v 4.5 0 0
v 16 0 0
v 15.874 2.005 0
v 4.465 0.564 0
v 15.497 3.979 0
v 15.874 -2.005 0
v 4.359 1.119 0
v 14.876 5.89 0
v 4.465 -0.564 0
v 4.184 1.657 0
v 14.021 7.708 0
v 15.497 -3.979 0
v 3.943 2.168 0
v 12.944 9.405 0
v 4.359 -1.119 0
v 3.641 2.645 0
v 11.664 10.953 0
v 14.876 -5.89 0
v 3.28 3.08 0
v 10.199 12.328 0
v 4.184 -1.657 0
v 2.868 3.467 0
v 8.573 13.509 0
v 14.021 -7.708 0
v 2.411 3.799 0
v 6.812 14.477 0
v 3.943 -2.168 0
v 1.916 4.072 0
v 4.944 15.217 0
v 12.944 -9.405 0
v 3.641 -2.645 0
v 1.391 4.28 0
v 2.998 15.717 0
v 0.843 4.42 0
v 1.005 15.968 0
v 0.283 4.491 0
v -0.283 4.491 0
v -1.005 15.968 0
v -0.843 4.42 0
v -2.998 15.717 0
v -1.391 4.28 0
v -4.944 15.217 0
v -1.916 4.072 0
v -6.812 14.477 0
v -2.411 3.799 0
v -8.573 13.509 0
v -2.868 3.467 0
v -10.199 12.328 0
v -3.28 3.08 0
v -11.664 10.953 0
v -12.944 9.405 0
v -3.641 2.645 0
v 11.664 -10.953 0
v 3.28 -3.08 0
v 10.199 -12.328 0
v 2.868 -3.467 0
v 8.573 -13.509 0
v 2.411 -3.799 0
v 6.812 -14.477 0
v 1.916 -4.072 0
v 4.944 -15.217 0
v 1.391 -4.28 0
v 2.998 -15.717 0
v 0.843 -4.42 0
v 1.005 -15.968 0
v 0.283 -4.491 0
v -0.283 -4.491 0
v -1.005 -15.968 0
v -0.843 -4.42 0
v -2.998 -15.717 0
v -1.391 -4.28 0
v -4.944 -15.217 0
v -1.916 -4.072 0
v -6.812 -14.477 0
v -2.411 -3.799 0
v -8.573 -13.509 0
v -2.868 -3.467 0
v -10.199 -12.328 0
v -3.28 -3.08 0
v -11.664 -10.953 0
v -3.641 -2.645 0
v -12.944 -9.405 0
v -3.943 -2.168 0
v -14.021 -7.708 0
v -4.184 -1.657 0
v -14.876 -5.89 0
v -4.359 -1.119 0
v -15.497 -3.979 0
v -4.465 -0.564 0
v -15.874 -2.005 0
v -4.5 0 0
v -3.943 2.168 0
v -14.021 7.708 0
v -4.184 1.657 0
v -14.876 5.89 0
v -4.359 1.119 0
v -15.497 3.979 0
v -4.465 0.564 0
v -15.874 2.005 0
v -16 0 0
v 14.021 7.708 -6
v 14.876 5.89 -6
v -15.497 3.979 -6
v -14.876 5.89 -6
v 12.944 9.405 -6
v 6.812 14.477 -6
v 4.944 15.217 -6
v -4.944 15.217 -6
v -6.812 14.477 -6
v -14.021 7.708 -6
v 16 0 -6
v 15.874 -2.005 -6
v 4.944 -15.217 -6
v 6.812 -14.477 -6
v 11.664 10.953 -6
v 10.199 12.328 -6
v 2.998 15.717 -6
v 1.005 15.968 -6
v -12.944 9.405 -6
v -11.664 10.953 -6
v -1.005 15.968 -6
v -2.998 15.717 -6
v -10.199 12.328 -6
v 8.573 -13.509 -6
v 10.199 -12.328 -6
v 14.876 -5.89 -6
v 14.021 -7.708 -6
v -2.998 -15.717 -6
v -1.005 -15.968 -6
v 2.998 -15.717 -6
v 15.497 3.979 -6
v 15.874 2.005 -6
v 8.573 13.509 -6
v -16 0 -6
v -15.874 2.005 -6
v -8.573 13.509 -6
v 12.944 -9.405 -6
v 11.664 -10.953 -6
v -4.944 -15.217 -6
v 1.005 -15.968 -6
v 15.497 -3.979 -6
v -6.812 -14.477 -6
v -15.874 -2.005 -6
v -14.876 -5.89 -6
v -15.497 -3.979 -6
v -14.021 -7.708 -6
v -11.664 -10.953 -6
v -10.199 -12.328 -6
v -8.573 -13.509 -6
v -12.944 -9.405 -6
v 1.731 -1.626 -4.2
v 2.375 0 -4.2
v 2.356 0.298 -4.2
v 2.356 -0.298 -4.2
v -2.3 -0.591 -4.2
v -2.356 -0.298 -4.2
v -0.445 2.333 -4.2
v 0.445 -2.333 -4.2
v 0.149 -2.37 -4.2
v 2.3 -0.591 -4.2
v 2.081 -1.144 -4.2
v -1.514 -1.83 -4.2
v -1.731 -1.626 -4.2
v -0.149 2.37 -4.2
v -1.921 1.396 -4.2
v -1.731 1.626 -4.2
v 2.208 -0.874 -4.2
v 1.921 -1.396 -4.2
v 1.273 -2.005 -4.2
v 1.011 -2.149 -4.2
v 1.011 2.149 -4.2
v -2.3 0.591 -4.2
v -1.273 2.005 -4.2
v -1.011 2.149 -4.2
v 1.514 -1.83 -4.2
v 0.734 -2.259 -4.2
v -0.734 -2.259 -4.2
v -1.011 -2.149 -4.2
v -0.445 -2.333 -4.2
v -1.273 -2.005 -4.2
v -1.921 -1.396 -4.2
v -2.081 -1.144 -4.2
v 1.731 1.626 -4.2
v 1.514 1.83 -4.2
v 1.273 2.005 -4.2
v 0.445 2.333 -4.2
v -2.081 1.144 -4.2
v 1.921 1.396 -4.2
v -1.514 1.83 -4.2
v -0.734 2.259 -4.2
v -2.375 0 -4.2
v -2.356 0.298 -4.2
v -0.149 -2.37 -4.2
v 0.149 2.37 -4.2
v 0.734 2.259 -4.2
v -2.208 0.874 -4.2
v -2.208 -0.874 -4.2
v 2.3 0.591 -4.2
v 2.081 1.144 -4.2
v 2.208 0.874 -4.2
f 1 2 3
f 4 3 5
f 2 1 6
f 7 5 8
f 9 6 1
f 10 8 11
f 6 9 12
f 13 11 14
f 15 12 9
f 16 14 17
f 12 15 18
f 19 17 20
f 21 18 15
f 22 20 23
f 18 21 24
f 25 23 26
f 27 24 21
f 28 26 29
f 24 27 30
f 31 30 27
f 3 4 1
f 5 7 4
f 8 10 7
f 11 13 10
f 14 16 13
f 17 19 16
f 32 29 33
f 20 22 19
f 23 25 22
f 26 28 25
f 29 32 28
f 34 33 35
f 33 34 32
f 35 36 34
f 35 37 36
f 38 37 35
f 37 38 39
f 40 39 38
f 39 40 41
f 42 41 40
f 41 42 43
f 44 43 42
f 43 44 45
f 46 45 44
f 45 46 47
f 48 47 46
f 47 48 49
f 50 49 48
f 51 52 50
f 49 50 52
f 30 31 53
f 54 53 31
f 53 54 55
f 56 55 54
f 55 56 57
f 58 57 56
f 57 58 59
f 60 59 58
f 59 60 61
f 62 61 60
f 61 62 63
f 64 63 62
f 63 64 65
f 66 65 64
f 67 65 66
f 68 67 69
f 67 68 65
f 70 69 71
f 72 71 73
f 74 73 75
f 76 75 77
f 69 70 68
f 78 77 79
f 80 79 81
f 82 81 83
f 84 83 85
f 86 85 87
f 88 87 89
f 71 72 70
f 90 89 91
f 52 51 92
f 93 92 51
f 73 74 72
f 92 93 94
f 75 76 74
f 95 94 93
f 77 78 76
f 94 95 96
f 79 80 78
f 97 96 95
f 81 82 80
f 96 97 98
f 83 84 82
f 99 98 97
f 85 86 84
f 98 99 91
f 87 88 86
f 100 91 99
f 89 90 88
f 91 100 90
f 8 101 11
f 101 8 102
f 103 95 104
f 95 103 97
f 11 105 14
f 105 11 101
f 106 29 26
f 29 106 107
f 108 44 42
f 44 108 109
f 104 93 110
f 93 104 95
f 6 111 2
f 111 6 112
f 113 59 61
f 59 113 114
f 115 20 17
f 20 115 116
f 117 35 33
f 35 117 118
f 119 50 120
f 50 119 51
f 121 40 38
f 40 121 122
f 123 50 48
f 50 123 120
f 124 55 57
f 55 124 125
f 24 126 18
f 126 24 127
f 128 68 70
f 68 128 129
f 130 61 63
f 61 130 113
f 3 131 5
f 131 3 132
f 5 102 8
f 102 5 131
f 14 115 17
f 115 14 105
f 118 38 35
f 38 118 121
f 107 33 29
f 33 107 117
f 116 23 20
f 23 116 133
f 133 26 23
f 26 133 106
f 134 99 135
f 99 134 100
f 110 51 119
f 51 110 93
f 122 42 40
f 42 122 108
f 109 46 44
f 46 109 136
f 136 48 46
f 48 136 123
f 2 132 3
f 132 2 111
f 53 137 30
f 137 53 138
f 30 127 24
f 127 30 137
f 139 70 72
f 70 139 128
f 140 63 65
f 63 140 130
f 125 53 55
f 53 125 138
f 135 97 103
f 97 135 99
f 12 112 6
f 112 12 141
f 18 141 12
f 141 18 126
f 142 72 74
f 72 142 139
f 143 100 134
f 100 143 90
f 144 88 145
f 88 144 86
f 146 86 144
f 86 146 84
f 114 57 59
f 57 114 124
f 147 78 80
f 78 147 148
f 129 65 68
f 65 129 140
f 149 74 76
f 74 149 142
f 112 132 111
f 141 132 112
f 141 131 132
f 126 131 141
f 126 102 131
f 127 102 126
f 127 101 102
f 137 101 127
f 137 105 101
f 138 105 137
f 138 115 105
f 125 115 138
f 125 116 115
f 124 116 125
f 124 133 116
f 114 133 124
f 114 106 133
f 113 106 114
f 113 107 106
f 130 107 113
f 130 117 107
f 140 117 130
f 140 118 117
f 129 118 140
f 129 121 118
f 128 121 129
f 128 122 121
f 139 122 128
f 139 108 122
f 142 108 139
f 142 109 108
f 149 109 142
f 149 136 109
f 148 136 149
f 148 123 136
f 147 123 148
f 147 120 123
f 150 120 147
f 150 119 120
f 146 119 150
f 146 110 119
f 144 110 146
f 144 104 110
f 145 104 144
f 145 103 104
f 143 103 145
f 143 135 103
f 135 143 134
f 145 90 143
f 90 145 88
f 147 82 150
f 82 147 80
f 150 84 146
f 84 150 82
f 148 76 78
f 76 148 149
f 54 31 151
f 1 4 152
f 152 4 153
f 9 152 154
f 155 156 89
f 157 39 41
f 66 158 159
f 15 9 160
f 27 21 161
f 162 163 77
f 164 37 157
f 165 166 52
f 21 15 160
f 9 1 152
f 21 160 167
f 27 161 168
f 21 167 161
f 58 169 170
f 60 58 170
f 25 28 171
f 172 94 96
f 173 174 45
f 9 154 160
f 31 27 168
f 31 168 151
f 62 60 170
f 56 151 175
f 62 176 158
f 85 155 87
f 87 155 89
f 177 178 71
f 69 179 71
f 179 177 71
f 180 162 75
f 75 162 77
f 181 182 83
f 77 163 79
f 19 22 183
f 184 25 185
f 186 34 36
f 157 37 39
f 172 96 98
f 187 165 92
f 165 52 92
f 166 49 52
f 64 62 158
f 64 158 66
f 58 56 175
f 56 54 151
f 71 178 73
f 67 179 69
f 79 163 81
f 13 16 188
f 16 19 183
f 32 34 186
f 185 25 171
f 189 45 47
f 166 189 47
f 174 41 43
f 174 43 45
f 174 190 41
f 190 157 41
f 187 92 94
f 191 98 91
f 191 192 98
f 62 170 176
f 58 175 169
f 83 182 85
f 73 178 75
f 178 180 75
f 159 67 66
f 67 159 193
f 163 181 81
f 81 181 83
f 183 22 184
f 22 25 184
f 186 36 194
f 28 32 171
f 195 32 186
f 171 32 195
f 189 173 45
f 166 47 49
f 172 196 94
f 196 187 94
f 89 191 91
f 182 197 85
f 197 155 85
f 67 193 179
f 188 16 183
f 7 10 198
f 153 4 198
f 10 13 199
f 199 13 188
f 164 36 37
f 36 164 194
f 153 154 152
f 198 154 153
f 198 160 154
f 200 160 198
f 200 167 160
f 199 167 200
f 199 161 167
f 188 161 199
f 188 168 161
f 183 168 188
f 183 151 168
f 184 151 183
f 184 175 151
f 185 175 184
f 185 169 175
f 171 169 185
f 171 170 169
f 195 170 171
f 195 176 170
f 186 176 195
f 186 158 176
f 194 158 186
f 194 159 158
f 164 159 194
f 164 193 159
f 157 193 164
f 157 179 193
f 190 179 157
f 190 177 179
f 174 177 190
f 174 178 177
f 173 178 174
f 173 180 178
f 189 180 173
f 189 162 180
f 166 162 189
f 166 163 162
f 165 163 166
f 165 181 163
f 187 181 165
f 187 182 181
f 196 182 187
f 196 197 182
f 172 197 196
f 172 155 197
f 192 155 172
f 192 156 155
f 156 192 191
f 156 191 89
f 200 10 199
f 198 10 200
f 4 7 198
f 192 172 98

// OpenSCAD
$fn = 50;


difference() {
	union() {
		translate(v = [0, 0, -3.0000000000]) {
			cylinder(h = 3, r = 10.0000000000);
		}
		translate(v = [0, 0, -6.0000000000]) {
			cylinder(h = 6, r = 16.0000000000);
		}
	}
	union() {
		translate(v = [0, 0, 0]) {
			rotate(a = [0, 0, 0]) {
				difference() {
					union() {
						#translate(v = [0, 0, -3.0000000000]) {
							cylinder(h = 3, r = 2.2500000000);
						}
						#translate(v = [0, 0, -4.2000000000]) {
							cylinder(h = 4.2000000000, r1 = 2.3750000000, r2 = 4.5000000000);
						}
						#translate(v = [0, 0, -3.0000000000]) {
							cylinder(h = 3, r = 2.3750000000);
						}
						#translate(v = [0, 0, -3.0000000000]) {
							cylinder(h = 3, r = 2.2500000000);
						}
					}
					union();
				}
			}
		}
	}
}
